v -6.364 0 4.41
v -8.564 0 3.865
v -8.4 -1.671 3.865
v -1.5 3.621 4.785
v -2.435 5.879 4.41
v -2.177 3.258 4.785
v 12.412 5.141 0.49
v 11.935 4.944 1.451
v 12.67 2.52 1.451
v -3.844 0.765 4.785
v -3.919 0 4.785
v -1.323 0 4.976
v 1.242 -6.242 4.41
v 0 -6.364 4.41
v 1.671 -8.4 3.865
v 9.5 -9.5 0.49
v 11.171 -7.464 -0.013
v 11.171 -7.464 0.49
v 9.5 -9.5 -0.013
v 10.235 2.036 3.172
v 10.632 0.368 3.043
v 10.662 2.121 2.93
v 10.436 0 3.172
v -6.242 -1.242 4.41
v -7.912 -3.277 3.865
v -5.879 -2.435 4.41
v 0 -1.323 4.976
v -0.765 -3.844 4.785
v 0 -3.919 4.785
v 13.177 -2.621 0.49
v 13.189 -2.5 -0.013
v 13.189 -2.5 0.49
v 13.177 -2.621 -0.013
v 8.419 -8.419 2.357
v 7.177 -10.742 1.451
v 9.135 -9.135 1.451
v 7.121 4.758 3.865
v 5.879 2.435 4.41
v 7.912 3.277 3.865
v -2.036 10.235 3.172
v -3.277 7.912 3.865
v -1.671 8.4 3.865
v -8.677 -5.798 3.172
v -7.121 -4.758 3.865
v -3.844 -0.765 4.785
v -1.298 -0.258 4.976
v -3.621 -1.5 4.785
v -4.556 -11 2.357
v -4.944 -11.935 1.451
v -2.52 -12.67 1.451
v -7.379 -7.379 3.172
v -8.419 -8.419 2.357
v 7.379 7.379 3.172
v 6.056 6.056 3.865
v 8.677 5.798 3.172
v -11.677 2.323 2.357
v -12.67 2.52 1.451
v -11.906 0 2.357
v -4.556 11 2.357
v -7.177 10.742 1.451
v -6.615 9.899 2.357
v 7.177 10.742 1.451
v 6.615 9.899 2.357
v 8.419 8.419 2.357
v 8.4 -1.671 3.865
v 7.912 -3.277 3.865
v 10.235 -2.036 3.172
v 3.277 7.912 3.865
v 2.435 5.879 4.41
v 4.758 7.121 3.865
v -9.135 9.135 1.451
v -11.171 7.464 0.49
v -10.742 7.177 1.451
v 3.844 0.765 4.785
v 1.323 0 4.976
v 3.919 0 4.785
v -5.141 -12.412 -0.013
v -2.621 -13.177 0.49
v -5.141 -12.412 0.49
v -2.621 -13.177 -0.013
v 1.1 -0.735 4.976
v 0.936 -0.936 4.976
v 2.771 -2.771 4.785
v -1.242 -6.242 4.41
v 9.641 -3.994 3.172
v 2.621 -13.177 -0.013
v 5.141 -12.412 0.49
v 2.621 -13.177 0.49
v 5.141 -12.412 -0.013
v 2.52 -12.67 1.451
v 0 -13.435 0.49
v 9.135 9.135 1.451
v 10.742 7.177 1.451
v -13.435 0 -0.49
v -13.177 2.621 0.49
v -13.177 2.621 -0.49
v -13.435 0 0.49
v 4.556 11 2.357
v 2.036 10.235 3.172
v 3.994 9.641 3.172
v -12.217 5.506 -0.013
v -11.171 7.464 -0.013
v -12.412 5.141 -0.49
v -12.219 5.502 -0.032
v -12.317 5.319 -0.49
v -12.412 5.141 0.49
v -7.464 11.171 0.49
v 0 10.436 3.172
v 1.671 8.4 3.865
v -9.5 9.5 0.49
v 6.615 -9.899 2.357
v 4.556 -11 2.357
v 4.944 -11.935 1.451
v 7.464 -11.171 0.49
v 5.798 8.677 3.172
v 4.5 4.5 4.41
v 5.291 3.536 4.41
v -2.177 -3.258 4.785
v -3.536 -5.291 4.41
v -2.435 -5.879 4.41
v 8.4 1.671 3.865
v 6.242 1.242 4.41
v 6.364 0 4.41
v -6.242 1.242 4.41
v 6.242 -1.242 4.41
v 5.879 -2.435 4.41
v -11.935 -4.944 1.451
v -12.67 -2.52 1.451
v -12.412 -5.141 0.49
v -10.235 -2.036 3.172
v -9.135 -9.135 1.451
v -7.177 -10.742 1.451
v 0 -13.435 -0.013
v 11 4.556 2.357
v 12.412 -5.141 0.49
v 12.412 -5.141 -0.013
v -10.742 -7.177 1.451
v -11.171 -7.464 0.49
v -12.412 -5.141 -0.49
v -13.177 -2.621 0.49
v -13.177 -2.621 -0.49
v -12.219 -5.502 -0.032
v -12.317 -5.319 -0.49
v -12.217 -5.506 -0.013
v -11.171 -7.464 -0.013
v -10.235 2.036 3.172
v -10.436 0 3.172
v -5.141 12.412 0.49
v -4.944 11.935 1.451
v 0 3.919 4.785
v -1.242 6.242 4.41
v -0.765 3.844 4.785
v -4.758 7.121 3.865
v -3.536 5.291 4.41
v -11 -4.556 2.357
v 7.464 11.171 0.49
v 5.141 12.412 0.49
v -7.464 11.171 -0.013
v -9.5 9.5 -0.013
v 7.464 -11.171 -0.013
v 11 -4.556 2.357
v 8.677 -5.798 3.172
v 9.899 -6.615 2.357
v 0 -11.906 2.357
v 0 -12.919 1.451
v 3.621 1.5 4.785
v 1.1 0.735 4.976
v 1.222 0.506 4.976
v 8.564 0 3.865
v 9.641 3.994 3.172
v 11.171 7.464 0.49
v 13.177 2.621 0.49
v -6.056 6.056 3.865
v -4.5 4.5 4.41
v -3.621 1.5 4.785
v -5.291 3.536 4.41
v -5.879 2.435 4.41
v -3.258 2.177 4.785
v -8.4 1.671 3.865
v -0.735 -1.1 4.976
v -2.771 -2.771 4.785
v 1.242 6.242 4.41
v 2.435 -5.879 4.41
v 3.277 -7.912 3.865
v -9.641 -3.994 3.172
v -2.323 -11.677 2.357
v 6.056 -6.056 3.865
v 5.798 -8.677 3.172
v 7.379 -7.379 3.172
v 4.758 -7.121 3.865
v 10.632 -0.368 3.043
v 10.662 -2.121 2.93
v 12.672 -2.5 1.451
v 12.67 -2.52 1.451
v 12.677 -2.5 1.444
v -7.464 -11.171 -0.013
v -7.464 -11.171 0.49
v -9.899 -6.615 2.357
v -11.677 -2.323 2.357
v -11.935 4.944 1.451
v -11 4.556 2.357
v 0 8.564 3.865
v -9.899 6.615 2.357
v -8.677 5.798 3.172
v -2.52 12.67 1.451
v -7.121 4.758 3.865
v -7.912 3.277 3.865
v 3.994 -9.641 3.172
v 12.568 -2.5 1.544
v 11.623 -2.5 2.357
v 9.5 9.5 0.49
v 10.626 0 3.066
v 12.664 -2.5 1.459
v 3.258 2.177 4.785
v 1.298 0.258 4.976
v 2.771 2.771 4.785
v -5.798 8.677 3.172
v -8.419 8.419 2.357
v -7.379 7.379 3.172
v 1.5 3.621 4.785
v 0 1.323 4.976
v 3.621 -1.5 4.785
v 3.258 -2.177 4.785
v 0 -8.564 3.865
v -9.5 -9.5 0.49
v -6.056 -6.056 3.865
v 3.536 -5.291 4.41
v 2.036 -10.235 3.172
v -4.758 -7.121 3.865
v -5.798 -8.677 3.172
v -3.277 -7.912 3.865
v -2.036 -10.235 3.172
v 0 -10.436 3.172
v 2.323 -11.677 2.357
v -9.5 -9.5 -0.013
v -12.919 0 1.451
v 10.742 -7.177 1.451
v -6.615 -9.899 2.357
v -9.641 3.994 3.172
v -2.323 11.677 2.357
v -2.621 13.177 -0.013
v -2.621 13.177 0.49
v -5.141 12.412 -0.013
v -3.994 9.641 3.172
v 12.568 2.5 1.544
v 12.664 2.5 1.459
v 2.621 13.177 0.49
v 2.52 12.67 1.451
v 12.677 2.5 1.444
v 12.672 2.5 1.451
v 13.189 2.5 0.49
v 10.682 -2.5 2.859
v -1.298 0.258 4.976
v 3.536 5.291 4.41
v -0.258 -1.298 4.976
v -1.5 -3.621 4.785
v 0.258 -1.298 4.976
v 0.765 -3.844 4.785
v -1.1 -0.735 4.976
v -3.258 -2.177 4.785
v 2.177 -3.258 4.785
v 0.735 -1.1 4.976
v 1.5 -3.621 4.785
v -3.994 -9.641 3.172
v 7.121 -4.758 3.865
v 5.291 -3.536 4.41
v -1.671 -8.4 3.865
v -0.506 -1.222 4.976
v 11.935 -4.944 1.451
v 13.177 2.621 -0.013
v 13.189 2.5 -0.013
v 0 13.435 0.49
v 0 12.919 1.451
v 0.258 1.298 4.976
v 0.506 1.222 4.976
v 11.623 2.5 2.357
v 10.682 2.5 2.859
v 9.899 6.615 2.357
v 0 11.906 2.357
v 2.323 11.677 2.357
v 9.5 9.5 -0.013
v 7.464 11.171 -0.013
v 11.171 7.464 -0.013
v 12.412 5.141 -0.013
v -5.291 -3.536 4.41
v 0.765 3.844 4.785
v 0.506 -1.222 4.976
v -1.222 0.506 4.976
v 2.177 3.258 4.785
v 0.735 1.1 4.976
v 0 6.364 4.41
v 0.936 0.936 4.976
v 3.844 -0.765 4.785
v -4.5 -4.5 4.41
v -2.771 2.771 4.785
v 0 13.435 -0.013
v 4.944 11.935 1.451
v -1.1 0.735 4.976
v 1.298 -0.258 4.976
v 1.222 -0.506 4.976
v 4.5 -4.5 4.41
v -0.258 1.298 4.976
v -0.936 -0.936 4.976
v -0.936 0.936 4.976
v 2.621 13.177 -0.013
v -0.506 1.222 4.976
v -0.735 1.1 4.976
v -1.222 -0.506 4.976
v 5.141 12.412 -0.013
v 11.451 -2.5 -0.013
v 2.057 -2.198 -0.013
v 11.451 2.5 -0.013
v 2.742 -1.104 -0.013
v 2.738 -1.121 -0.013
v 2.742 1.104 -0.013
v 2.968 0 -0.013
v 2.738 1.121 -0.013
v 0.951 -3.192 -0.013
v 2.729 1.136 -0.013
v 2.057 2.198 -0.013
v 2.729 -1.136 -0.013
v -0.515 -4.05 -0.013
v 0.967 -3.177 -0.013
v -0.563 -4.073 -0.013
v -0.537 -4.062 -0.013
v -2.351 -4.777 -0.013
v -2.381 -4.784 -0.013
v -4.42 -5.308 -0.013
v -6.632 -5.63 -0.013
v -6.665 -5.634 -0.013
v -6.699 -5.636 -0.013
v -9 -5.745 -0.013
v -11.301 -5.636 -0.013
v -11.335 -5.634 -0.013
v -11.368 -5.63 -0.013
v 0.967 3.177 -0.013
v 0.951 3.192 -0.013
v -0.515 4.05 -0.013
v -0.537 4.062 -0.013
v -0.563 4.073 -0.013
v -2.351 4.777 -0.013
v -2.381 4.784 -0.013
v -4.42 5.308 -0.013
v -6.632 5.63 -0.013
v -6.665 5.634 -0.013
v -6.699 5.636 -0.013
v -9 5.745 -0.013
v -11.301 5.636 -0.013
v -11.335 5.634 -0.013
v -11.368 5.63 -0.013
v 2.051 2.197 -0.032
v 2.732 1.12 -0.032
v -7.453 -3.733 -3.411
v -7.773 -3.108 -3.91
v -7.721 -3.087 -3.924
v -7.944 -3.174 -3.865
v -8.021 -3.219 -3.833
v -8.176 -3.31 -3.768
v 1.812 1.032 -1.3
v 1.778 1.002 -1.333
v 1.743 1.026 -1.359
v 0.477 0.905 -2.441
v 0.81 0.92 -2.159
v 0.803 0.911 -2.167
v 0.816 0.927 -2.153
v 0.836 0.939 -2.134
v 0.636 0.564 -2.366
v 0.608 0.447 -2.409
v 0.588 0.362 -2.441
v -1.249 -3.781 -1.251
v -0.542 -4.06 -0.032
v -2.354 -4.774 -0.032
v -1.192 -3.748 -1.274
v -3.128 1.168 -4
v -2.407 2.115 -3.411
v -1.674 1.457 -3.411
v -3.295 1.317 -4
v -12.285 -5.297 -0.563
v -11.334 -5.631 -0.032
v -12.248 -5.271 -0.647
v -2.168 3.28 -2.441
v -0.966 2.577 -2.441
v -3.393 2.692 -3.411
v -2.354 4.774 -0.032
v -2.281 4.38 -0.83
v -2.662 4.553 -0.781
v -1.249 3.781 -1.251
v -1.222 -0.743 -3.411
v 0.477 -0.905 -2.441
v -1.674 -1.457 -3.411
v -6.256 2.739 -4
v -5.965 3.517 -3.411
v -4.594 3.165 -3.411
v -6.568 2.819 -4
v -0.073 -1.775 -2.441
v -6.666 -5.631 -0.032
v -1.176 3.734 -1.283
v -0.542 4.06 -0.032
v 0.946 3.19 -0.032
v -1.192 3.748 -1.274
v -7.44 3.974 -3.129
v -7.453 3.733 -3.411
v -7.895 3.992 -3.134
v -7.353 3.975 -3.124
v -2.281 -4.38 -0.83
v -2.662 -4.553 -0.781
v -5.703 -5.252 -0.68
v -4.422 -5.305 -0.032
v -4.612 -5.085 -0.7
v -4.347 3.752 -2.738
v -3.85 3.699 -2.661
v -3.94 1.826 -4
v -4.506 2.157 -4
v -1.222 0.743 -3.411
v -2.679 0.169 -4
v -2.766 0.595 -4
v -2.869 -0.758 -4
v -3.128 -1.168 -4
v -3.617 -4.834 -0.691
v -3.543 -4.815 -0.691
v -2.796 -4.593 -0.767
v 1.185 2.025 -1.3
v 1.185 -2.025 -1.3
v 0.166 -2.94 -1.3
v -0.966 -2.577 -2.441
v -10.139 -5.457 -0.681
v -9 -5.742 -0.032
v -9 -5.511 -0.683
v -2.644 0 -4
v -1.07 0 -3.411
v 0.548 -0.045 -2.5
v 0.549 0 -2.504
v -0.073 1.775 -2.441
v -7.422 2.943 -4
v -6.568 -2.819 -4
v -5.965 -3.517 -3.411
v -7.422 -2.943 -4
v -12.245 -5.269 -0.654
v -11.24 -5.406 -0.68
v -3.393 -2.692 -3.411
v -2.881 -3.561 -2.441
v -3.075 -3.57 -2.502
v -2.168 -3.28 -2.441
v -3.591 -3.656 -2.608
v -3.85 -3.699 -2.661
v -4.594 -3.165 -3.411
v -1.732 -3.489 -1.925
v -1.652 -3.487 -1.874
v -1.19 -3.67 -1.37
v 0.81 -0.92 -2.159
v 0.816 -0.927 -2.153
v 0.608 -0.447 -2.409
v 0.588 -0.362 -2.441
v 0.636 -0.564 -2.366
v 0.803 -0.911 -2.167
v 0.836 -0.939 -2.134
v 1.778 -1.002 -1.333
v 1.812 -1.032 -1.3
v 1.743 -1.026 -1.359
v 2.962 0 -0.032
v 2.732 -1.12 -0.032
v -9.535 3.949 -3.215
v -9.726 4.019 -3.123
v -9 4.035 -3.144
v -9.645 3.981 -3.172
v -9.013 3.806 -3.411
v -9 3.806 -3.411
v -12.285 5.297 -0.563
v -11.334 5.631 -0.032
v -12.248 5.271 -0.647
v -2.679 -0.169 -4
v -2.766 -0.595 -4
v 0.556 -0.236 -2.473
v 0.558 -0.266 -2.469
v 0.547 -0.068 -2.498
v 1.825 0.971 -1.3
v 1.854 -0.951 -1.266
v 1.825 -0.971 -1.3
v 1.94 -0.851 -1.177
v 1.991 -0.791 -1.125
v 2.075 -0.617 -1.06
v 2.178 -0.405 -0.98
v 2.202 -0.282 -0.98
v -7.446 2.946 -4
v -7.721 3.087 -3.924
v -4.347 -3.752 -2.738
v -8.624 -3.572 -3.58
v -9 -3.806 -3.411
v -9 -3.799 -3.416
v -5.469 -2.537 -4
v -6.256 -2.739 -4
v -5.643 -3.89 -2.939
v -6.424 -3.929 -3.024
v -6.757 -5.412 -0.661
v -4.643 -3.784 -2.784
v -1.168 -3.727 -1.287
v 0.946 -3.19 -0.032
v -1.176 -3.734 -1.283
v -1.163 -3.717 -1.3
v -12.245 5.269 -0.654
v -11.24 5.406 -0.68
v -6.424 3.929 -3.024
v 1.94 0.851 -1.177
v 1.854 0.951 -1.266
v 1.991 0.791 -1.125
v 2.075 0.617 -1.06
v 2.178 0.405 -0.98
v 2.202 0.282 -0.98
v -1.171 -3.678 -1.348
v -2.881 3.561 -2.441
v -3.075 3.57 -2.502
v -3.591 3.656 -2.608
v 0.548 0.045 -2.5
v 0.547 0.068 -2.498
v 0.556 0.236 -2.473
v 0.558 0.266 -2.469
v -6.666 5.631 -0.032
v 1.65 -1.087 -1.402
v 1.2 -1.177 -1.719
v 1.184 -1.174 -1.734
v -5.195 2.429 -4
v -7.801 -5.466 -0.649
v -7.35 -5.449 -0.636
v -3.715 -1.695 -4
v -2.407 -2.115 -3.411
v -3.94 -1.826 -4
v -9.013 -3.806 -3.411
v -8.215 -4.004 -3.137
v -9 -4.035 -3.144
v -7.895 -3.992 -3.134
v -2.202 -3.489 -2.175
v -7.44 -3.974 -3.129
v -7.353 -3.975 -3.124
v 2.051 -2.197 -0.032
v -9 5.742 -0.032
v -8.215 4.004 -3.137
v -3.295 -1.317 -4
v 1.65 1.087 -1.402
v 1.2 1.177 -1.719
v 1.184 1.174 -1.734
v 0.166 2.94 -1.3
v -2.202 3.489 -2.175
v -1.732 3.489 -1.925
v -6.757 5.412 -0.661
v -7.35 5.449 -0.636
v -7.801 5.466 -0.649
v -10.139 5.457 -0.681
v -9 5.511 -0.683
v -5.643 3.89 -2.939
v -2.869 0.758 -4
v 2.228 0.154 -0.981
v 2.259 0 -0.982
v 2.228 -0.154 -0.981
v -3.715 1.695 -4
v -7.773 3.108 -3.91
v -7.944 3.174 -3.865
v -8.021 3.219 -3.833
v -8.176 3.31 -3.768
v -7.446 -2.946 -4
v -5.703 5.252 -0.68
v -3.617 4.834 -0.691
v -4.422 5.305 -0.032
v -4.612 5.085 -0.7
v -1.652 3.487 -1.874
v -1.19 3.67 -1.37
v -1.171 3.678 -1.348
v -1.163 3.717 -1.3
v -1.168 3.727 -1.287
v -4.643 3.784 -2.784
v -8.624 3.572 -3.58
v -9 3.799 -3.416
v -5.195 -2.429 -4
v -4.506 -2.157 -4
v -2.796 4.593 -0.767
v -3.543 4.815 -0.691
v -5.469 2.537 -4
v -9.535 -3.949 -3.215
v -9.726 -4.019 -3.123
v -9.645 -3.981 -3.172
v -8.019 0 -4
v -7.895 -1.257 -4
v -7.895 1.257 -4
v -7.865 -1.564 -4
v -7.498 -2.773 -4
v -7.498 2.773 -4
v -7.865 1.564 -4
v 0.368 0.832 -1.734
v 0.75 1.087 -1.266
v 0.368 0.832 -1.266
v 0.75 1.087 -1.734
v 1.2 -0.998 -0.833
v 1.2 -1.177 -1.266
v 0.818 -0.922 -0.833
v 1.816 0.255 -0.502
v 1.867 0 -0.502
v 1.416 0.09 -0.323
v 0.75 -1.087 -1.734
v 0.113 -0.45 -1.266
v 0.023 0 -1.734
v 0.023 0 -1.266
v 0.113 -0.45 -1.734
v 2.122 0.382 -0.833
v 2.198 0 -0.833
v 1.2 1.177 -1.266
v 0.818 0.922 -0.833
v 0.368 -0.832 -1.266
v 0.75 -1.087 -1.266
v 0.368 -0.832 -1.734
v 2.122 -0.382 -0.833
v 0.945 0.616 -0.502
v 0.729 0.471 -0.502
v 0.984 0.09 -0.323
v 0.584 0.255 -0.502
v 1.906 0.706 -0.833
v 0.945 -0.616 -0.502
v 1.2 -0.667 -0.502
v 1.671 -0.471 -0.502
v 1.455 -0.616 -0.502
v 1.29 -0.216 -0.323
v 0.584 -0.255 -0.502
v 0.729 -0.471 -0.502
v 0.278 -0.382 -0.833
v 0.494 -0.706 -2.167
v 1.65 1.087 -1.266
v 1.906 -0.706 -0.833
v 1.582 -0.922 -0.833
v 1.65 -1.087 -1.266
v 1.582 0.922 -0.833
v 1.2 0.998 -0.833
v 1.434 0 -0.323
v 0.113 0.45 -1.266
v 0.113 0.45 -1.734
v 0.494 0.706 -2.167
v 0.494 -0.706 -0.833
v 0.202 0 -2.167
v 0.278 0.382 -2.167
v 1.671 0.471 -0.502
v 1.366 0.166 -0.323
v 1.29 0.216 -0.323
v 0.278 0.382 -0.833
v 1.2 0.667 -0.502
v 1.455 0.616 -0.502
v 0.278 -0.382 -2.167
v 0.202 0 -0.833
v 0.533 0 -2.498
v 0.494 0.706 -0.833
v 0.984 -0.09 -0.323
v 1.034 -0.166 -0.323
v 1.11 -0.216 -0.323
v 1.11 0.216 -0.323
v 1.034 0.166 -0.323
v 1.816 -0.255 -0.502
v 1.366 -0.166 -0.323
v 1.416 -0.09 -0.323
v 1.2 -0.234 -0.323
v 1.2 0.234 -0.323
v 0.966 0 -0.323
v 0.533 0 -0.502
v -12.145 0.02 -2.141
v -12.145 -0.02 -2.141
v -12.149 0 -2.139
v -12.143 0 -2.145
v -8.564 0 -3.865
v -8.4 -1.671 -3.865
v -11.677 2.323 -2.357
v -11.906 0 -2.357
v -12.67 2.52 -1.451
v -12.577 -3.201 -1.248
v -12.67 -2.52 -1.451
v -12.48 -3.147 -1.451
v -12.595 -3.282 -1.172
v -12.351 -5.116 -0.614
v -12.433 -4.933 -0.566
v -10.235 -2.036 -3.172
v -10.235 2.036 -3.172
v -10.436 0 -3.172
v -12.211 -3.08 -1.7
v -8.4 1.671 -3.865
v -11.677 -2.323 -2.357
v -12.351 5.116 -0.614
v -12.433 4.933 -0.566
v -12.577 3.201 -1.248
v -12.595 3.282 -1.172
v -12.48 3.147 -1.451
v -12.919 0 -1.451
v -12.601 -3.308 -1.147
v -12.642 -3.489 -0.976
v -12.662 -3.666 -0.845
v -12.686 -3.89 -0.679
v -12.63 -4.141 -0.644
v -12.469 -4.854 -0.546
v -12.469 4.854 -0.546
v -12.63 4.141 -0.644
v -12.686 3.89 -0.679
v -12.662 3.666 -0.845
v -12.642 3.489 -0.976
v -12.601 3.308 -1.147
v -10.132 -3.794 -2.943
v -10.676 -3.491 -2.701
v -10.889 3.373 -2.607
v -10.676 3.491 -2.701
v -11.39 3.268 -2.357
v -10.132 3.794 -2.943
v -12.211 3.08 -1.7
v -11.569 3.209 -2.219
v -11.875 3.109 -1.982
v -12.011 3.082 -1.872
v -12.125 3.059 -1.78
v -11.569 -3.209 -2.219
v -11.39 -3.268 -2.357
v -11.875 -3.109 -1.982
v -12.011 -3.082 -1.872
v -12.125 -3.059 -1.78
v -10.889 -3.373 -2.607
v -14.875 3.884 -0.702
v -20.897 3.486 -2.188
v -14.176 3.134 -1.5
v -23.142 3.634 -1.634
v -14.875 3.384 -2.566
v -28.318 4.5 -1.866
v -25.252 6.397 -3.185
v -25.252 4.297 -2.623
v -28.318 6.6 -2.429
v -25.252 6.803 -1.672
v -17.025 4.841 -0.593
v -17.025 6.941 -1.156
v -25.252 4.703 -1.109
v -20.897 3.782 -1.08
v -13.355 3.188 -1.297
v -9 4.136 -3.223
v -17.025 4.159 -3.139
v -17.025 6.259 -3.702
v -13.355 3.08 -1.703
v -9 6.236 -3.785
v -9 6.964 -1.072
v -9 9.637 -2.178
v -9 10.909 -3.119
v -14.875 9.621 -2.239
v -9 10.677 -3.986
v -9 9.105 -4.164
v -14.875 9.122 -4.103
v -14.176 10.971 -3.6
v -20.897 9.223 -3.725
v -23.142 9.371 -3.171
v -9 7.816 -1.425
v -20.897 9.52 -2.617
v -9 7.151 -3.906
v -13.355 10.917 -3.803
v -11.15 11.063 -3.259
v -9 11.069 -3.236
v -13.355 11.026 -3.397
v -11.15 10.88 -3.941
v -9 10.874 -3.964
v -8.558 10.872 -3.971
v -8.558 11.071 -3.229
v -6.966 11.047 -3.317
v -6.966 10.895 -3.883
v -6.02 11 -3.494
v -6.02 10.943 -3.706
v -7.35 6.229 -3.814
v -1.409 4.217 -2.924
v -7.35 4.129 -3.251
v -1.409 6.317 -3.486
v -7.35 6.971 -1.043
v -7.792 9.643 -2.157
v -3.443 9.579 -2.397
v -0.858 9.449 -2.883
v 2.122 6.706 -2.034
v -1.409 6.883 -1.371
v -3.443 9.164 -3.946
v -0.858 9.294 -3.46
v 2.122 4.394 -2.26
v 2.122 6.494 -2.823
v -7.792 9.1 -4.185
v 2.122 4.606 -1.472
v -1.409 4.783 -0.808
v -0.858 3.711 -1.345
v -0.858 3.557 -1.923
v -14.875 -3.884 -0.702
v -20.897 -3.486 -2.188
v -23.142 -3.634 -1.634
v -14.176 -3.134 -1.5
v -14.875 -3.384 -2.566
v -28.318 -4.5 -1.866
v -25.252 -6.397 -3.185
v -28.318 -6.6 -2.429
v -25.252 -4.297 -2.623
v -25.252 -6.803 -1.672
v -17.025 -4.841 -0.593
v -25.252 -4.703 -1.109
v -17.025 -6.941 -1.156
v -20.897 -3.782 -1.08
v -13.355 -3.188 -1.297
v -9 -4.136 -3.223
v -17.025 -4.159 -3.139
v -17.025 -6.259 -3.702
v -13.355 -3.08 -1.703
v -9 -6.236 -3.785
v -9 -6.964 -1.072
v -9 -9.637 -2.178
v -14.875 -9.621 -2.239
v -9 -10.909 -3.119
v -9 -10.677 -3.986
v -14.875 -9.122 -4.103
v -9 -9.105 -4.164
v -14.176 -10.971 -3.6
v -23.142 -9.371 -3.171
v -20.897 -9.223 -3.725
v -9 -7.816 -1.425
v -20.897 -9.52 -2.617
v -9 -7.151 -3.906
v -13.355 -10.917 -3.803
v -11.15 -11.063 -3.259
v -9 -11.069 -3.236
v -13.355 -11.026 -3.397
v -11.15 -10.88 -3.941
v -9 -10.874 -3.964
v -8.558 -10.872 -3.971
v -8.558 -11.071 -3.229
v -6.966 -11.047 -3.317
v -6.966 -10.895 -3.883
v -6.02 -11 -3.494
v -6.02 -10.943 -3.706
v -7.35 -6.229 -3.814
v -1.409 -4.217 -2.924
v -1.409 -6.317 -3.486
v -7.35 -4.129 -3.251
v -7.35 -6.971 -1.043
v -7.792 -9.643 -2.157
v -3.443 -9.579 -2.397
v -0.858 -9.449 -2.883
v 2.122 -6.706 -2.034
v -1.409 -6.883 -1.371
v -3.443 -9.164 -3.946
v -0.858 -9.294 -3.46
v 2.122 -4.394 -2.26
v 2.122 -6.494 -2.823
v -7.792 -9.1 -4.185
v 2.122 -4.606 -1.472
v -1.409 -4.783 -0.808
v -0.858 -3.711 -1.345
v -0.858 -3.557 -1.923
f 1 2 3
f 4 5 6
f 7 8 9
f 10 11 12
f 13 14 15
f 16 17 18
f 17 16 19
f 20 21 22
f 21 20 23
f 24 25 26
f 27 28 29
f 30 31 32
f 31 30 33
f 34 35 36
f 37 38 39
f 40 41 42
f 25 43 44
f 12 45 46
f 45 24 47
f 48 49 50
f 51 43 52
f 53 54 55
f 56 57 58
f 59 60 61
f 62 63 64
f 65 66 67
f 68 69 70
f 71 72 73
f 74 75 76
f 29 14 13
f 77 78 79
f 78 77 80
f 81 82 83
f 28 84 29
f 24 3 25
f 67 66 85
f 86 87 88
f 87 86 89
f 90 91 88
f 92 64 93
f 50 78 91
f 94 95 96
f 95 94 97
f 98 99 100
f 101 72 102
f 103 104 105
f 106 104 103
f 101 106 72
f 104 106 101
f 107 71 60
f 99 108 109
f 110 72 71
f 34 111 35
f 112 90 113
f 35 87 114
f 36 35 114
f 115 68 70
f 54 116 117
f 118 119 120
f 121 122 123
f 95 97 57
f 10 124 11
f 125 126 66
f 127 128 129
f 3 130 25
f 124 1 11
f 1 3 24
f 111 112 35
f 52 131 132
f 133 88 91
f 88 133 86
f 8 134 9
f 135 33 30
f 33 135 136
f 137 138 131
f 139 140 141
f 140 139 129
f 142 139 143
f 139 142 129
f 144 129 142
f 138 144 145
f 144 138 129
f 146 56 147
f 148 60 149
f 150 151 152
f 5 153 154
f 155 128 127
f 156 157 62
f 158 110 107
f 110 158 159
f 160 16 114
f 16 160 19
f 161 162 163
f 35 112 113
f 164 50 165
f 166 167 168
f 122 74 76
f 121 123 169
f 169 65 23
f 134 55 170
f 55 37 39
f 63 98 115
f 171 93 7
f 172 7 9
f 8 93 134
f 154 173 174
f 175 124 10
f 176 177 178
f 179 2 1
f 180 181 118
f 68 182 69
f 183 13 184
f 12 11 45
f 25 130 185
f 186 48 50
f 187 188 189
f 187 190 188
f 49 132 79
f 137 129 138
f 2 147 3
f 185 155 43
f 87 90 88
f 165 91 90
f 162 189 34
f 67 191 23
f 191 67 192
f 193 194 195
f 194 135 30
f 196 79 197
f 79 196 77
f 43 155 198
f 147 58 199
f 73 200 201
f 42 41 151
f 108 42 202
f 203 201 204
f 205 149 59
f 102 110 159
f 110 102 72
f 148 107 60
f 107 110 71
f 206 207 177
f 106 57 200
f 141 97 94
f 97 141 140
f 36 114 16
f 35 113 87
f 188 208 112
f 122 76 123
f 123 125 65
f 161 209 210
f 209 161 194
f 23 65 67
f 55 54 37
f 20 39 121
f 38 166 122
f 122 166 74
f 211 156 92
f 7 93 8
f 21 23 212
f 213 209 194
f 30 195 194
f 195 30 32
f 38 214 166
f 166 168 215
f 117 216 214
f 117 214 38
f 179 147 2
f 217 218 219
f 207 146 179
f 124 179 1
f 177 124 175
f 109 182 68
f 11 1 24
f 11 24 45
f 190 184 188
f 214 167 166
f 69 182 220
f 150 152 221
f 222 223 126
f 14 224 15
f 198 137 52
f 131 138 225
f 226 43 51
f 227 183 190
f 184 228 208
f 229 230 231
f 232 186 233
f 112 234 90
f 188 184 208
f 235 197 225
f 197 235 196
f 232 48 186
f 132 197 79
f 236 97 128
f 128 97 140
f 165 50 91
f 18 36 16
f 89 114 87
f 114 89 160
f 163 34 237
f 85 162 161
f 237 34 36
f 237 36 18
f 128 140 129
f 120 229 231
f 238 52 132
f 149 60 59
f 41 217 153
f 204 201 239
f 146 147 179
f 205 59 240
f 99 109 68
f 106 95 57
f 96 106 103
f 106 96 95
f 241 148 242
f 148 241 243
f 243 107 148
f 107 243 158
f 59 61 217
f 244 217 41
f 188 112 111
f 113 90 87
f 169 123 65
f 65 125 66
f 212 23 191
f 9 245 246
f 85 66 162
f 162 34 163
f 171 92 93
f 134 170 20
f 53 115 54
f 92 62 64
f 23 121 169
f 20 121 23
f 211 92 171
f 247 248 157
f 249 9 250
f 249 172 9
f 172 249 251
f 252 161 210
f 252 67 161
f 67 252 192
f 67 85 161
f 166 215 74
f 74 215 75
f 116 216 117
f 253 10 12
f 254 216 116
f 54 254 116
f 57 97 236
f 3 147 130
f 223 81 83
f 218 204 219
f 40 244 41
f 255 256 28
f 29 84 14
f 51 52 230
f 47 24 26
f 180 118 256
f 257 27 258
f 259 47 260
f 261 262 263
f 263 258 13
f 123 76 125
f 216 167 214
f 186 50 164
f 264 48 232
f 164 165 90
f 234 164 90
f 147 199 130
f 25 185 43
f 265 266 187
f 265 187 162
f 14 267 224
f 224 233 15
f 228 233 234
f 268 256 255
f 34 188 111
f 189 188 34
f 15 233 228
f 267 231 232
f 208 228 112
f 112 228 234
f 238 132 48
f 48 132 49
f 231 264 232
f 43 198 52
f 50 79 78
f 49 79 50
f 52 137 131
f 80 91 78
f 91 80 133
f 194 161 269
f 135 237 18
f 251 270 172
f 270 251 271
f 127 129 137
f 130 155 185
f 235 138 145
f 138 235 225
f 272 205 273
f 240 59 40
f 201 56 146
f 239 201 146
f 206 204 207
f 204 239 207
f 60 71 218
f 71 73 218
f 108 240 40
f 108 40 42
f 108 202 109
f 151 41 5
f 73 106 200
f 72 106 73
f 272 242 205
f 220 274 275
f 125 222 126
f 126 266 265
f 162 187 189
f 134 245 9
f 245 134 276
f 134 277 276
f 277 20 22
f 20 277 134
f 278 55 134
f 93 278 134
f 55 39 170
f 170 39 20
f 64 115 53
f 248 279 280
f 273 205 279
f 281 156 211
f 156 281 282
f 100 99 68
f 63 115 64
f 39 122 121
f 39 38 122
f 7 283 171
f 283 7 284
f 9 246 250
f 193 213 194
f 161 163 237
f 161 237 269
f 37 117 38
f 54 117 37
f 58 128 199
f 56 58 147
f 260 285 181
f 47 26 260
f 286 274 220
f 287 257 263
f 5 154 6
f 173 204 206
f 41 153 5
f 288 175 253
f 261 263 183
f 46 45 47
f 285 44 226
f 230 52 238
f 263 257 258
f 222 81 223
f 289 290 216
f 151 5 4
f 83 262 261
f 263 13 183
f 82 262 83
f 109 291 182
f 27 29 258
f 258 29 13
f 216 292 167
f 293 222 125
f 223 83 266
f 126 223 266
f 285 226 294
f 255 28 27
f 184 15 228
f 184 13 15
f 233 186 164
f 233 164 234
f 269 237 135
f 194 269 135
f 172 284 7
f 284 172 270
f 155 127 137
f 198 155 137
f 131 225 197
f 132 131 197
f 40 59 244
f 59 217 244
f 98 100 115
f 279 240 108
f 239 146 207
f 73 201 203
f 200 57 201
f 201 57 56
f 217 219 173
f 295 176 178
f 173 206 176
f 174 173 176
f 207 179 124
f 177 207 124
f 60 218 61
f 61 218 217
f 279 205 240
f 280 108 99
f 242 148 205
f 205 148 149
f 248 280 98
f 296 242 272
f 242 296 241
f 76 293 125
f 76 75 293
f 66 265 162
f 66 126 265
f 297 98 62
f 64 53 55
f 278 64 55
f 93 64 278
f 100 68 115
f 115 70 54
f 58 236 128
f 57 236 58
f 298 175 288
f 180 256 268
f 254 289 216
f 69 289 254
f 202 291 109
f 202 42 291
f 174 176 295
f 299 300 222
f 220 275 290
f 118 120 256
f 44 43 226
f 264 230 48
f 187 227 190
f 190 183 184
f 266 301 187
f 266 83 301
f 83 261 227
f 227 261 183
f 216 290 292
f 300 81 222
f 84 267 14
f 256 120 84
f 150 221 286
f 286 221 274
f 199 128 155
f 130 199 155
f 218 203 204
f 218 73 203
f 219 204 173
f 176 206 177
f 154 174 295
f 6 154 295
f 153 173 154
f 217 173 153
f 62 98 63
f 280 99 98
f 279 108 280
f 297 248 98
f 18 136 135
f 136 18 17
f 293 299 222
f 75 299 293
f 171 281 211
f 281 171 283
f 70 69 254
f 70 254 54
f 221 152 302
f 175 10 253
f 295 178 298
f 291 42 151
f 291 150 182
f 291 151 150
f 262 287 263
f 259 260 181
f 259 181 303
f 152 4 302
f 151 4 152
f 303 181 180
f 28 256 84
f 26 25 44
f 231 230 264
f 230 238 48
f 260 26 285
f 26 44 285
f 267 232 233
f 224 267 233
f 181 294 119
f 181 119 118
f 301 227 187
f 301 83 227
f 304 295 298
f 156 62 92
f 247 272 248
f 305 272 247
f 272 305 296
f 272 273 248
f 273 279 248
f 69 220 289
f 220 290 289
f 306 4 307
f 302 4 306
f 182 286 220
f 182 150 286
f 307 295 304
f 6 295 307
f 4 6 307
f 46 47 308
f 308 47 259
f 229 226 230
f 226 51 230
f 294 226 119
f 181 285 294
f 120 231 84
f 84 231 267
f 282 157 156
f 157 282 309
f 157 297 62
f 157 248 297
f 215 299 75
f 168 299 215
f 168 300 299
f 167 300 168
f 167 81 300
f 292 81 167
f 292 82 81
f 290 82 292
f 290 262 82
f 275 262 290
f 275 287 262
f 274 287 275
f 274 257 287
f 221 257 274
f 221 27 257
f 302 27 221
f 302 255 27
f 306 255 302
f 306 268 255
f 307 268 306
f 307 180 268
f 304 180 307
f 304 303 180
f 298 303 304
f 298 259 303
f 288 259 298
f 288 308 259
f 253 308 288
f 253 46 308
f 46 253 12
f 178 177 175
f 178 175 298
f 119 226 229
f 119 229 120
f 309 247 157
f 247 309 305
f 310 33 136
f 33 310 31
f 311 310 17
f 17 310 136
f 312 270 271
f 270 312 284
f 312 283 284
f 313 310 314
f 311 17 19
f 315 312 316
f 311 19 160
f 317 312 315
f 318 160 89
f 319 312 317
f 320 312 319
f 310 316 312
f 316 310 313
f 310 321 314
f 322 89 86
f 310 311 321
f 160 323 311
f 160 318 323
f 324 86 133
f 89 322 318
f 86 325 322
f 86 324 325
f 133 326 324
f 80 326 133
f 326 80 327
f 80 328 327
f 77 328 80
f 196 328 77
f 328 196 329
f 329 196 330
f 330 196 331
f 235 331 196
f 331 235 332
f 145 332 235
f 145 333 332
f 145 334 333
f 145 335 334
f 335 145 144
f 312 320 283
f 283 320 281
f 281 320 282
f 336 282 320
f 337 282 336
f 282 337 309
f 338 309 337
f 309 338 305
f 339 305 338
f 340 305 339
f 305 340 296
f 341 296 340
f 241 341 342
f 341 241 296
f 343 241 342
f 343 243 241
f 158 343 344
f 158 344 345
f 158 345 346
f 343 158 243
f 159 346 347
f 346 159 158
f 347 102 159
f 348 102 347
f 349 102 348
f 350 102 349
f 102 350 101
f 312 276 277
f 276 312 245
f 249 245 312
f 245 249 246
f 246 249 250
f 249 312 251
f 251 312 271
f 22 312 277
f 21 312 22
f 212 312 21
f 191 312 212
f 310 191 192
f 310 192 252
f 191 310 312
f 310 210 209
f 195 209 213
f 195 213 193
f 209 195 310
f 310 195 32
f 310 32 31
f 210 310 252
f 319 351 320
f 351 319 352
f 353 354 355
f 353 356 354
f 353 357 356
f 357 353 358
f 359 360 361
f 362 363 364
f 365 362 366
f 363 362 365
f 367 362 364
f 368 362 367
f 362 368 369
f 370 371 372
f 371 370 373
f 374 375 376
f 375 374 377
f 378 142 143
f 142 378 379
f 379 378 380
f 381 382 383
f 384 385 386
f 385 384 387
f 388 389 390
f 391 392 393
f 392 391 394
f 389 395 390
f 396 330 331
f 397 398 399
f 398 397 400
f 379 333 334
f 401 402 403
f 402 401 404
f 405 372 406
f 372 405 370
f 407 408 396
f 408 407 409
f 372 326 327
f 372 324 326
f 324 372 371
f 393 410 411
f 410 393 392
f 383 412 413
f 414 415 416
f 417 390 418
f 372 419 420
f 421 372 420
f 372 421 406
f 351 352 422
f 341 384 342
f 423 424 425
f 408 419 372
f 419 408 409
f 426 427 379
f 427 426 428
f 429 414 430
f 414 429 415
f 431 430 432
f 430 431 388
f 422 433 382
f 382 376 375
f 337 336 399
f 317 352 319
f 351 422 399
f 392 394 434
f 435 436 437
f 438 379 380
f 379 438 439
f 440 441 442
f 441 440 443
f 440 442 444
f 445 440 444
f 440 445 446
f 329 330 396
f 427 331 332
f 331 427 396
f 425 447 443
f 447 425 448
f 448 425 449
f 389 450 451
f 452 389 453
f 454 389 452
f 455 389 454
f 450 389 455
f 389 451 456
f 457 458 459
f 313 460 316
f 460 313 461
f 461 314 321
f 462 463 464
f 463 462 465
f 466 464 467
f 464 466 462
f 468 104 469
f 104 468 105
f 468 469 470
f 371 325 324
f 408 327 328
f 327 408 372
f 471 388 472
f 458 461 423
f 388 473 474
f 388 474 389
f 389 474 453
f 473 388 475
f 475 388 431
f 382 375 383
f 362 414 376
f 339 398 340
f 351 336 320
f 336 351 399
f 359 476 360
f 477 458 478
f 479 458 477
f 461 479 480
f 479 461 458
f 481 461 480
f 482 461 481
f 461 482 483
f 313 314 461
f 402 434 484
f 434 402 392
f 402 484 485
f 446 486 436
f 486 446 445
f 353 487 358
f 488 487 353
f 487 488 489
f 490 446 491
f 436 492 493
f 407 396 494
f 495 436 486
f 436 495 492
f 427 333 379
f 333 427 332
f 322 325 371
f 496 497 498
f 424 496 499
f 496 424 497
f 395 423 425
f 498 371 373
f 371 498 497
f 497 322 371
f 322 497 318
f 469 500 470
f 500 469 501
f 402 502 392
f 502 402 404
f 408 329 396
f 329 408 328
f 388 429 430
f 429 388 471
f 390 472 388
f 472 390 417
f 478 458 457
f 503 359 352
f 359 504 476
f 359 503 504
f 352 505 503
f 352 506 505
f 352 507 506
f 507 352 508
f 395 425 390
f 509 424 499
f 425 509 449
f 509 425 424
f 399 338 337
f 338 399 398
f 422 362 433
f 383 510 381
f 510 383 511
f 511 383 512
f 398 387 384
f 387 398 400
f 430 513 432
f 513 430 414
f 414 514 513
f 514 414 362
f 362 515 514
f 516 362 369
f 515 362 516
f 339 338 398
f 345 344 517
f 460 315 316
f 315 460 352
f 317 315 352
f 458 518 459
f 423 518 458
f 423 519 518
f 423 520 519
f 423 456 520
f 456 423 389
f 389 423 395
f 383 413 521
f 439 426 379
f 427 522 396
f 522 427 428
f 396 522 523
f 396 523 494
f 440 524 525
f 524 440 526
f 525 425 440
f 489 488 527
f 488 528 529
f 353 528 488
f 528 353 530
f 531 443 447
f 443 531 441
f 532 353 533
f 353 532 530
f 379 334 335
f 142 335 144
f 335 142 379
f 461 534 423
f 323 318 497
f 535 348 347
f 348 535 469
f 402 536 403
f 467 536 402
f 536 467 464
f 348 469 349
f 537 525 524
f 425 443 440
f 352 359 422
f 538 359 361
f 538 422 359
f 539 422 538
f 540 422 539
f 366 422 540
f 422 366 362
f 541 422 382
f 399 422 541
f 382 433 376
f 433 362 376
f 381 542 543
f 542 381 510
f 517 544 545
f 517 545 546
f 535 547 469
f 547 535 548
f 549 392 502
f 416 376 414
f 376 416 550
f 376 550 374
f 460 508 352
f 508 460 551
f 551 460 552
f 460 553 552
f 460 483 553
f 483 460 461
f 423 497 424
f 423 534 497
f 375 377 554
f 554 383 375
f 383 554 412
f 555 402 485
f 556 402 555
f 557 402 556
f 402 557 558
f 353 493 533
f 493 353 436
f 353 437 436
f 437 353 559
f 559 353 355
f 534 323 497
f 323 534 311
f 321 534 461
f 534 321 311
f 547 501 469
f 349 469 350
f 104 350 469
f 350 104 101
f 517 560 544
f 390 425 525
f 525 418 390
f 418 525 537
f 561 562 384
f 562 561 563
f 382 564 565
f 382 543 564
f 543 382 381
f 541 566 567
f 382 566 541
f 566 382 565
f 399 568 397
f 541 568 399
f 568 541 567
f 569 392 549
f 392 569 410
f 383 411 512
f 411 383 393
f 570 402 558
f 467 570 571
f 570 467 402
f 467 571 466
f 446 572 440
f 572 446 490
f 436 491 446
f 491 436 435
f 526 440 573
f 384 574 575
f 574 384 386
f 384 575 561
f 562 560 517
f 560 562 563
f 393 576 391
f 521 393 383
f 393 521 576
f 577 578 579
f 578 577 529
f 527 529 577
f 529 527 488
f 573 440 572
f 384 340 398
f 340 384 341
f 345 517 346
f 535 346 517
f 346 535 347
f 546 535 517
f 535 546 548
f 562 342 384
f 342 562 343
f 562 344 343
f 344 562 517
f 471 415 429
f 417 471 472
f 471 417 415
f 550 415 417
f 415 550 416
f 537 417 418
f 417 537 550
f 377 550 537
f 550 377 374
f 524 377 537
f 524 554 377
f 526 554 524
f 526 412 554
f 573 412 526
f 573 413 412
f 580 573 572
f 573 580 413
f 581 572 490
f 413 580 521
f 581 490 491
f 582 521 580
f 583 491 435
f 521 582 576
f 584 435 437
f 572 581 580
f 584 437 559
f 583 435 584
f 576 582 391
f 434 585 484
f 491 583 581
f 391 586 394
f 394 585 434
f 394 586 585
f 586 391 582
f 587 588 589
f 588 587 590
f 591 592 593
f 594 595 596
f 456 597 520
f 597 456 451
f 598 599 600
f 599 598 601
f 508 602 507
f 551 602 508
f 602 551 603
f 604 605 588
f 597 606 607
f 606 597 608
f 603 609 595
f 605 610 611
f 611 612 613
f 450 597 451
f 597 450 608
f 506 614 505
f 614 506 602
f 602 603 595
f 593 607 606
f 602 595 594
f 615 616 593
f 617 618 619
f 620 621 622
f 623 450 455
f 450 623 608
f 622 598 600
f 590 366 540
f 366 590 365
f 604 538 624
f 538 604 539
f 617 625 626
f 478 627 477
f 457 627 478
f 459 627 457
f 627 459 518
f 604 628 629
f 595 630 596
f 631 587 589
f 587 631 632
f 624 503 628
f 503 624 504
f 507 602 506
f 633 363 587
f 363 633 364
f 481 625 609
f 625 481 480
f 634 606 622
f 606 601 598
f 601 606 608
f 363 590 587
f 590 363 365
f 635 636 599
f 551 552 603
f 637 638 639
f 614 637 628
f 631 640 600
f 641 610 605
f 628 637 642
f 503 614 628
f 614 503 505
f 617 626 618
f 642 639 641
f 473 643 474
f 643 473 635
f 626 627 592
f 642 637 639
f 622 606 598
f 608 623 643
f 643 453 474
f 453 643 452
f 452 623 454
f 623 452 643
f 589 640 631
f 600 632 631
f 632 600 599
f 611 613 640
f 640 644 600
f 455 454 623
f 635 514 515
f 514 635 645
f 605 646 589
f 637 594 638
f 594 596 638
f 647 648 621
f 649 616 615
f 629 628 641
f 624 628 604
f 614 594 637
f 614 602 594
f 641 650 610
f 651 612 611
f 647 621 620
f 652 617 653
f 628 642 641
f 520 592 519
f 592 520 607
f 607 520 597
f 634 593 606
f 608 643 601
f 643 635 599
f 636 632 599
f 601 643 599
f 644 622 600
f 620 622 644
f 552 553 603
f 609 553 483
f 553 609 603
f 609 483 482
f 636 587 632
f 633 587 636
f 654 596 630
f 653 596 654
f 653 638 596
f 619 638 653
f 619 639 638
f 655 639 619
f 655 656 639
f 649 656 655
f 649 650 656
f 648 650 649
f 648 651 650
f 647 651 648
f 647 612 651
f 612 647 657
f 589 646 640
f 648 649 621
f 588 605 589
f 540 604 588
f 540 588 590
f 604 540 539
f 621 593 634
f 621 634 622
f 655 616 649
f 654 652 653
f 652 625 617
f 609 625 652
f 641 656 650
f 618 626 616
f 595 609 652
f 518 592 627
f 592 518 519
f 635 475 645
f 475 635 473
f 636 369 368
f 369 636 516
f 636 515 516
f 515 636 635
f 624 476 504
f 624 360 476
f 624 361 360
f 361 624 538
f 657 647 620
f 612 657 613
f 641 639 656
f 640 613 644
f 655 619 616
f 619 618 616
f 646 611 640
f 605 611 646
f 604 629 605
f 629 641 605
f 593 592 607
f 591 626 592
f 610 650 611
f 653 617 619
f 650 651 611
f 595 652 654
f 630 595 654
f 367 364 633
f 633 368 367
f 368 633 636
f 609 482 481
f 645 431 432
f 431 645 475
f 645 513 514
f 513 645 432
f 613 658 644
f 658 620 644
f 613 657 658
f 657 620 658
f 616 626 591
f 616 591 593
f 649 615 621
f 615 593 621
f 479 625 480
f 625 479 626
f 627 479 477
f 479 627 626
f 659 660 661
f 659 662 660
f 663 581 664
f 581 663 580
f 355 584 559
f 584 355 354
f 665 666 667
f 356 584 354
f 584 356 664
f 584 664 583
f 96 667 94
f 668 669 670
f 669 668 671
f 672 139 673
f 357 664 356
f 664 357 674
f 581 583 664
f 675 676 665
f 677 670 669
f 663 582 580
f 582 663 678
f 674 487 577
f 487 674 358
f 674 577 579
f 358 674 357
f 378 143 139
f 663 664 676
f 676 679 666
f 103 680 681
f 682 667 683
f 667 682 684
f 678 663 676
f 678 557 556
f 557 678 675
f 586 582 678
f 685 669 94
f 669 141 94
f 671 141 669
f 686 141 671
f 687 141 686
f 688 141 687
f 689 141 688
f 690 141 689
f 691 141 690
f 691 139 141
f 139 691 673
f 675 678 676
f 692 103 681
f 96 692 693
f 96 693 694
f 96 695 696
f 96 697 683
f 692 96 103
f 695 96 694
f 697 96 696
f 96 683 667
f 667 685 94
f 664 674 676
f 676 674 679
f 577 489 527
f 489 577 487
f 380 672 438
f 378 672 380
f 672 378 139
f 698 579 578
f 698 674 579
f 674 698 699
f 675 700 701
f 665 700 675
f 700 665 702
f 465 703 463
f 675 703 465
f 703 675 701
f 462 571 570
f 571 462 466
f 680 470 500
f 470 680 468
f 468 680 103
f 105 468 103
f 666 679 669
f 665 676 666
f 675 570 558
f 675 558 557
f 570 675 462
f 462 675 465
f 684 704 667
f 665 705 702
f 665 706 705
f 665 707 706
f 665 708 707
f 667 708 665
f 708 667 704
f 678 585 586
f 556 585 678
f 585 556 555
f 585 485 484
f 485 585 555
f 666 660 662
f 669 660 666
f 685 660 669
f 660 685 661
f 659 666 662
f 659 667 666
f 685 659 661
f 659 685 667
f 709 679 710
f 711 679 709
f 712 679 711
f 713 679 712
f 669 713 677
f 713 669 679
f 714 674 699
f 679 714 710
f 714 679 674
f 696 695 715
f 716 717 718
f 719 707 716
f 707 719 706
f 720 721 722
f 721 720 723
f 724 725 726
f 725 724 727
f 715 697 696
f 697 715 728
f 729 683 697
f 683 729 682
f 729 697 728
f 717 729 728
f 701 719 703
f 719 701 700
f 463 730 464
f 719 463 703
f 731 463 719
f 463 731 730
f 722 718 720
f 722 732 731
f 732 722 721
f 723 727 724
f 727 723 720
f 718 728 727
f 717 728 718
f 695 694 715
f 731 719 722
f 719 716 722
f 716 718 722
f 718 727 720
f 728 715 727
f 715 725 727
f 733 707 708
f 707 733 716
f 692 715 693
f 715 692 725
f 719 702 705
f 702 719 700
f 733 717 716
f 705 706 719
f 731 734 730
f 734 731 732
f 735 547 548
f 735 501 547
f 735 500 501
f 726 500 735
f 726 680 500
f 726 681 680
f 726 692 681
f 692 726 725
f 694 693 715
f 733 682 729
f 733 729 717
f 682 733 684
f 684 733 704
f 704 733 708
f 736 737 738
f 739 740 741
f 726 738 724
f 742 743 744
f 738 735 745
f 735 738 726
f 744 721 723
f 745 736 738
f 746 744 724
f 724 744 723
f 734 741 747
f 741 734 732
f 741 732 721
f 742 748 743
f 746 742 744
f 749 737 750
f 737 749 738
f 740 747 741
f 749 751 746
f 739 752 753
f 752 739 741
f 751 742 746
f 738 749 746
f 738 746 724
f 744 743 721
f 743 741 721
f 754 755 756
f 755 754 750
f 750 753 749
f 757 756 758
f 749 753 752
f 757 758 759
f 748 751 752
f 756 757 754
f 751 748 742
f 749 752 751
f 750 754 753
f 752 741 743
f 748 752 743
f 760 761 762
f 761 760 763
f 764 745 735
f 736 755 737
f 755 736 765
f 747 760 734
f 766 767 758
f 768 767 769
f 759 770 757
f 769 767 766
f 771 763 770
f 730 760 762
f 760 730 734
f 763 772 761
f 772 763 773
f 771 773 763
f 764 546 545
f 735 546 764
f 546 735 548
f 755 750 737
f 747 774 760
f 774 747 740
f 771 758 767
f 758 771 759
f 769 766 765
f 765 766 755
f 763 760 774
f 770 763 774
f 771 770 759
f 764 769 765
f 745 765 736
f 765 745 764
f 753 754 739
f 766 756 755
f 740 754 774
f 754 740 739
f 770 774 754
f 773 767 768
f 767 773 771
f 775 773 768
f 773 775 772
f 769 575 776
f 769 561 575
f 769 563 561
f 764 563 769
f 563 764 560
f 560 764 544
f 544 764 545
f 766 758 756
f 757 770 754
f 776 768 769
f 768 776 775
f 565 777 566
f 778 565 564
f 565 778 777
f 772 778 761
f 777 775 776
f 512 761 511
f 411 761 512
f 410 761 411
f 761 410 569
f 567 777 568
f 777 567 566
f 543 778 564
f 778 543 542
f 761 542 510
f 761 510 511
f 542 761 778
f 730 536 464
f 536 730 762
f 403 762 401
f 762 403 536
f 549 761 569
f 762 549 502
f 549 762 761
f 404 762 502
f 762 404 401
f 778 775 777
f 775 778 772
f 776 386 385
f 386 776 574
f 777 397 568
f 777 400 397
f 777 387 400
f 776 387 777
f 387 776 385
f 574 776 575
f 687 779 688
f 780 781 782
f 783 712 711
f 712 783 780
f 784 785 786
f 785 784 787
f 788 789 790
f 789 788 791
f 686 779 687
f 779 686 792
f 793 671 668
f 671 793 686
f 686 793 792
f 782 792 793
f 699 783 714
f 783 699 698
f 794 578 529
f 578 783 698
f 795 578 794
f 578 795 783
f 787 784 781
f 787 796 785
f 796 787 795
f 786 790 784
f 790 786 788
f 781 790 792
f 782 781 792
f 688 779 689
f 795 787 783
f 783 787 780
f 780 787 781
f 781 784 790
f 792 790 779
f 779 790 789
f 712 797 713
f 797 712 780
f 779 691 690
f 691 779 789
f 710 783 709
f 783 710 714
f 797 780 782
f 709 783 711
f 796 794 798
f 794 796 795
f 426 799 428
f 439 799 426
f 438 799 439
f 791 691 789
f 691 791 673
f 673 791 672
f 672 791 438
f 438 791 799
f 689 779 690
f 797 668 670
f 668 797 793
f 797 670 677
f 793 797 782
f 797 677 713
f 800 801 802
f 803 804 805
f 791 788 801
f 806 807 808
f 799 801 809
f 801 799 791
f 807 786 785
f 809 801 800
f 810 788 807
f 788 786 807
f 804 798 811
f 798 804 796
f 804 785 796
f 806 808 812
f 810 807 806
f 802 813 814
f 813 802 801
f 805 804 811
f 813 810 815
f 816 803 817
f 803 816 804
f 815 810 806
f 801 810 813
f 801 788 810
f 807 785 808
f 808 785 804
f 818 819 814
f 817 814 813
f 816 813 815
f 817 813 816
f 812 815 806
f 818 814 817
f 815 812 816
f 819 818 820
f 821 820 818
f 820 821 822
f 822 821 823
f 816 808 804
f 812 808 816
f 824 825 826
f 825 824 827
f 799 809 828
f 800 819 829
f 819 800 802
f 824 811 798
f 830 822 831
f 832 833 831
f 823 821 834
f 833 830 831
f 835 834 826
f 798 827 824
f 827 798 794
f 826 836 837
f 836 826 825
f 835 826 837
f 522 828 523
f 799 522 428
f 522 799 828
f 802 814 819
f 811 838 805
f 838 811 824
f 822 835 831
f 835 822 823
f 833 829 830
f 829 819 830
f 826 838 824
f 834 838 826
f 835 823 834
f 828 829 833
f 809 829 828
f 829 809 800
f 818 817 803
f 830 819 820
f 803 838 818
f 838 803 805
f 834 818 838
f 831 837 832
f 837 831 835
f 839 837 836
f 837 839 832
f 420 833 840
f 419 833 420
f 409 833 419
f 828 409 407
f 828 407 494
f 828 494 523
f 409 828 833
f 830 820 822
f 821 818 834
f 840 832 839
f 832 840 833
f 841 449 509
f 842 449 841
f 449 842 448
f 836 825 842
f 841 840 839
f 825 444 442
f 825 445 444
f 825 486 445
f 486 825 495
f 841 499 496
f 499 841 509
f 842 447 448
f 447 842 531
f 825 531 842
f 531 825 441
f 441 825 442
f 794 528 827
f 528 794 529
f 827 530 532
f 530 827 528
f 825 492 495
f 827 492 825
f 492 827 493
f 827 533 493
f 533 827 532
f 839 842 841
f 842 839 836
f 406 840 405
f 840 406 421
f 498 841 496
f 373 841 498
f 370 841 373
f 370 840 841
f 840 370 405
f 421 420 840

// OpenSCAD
// file: yacht-common.scad
use <../lib/util.scad>;

module dip_saucer() {
    difference() {
        util_saucer(27,27,5);
        //dip_body();
        translate([13.5,0,2]) 
            rotate([0,-15,0])
            cube(5, center=true);
    }
    
}

module dip_body() {
    difference() {
        translate([-9,0,2])
            mirror([0,0,1])
                util_saucer(25,12,7);
        
        union() {
            translate([-9,0,-13])
                cube(18, center=true);
            
            translate([1.2,0,-1.5])
                sphere(1.2, $fn=16);
            
            translate([-21,0,-4])
                scale([2.5,1,1])
                rotate([90,0,0])
                    cylinder(12,4,4, center=true);
        }
    }
}

module dip_body2() {
    intersection() {
        dip_body();
        util_mirrored([0,0,1]) dip_saucer();
    }
}

module dip_nacelle_assembly() {
    translate([-19,0,0.5])
        util_nacelle_bar(24,5,3,.5);
    
    util_mirrored([0,1,0])
        translate([-15,11,4])
            util_nacelle(18,5,3,curved=true);
}
// file: ../lib/util.scad
fn1 = 32;
fn2 = 16;

module util_half_sphere(radius, fn=fn1) {
    difference() {
        sphere(radius, $fn=fn);
        translate([0,0,-(radius+radius/19)])
            cube(2*radius+radius/10, center=true);
    }
}

function gcd(a,b) = a == b ? a : a > b ? gcd(a-b, b) : gcd(a, b-a);

module util_saucer(length, width, height, fn=fn1) {
    rad = gcd(length,gcd(width,height));
    //rad = 10;
    scale([length/(2*rad), width/(2*rad), height/rad])
        util_half_sphere(rad, fn);
}

module util_half_cylinder(length, radius, inner_fn=fn2, outer_fn=fn1) {
    maxval = max(length, 2*radius);
    intersection() {
        difference() {
            rotate([0,90,0])
                translate([0,0,-(length/2 + length/20)])
                    cylinder(length+length/10, radius, radius, $fn=inner_fn);
            
            translate([0,0,(maxval/2 + maxval/19)])
                cube(maxval+maxval/10, center=true);
        }
        
        translate([0,0,-(radius+radius/20)])
            cylinder(radius + radius/10, length/2, length/2, $fn=outer_fn);
    }
}

module util_body(length, width, height, upper_height, fn=fn1) {
    rad = gcd(length, gcd(width, upper_height));
    
    scale(.995) scale([length/(2*rad), width/(2*rad), 1])
        util_half_cylinder(2*rad, height, outer_fn=fn);
}

module util_graded_cylinder(height, radius_start, radius_end, grades=1, fn=fn1) {
    height_grade = height / grades;
    radius_grade = (radius_start - radius_end) / (grades * grades);
    for (i = [0 : 1 : grades]) {
        translate([0,0,i*height_grade])
            cylinder(height_grade, 
                     radius_start - i*radius_grade * i,
                     radius_start - (i+1) * radius_grade * (i+1),
                     $fn = fn);
    }
}

module util_nacelle(length, width, height, curved=false, up=true, front_bulge=false) {
    rad = min(width, height/2);
    grads = curved ? 6 : 1;
    scale_factor = front_bulge ? 1.1 : 1;
    direction = up ? -1 : 1;
    difference() {
        scale([1, width/ (2*rad), height/rad])
            difference() {
                union() {
                    rotate([0,-90,0])
                        rotate(30)
                            util_graded_cylinder(length-rad, rad, rad/2, grads, 6);
                    scale(scale_factor) 
                        rotate([0,90,0]) rotate(90) sphere(rad, $fn=6);
                }
                
                translate([-length/2, 0, direction * (height/2 + height/19)])
                    cube([length+length, width+width, height+height/10], center=true);
            }
        
        translate([-length-(curved?length/3:0), 0, -length/3])
            rotate([0,-45,0])
                cube(length, center=true);
    }
}

module util_mirrored(v) {
    children();
    mirror(v) children();
}

module util_ring(outer, inner, height) {
    difference() {
        translate([0,0,-height/2])
            cylinder(height, outer, outer);
        translate([0,0,-(height/2 + height/19)])
            cylinder(height+height/10, inner, inner);
    }
}

module util_star(radius, thick, num, half=false) {
    angle = 360/num;
    offset = half? angle/2 : 0;
    for (i = [0: 1: num]) {
        rotate(i* angle + offset)
            translate([radius/2,0,0])
                cube([radius, thick, thick], center=true);
    }
}

module util_ring_star(radius, thick, num, inner, half=false) {
    outer=inner+thick;
    avg = (inner + outer)/2;
    union() {
        difference() {
            util_star(radius, thick, num, half);
            cylinder(2*thick, outer, outer, $fn=num, center=true);
        }
        util_ring(outer, inner, thick);
    }
}

module util_hangar_disk(height, lower, upper, num, fn=fn1) {
    difference() {
            cylinder(height, lower, upper, $fn=fn, center=true);
        difference() {
            scale([1,1,22])
                util_star(1.1*upper, height/20, num, half=true);
            scale(.95)
                cylinder(height, lower, upper, $fn=fn, center=true);
        }
    }
}

module util_hangar_form(length, width, height, num, inner=0) {
    l = 0.6* max(length, width);
    h = 2.5* height;
    thick = min(height/20,1);
    inner = inner == 0 ? l/3 : inner;
    difference() {
        children();
        scale([1,1,h/thick]) 
            util_ring_star(l, thick, num, inner, half=true);
    }
    scale(.95) children();
}

module util_nacelle_bar(span, height, width, thickness) {
    rad = (span*span/(8*height) + height/2);
    outer = rad + thickness/2;
    inner = rad - thickness/2;
    difference(){
        translate([0,0,outer])
            rotate([0,90,0])
                util_ring(outer, inner, width);
    
        translate([0,0,1.1*outer+height])
            cube(2.2*outer, center=true);
    }
}

module util_q_sphere(rad, quadrant, faces) {
    x_sign = quadrant == 1 ? 1 :
             quadrant == 2 ? -1 :
             quadrant == 3 ? -1 :
             quadrant == 4 ? 1 : 0;
    z_sign = quadrant == 1 ? 1 :
             quadrant == 2 ? 1 :
             quadrant == 3 ? -1 :
             quadrant == 4 ? -1 : 0;
    
    difference() {
        sphere(rad, $fn=faces);

        translate([x_sign*(-1.1*rad - .01),0,0])
        cube(2.2*rad, center=true);

        translate([0,0,z_sign*(-1.1*rad - .01)])
        cube(2.2*rad, center=true);
    }
}

module util_ovoid(front_rad, back_rad, width, upper_rad, lower_rad, faces=32) {
    half_width = width/2;
    largest=max(front_rad, back_rad, half_width, upper_rad, lower_rad);
    smallest=min(front_rad, back_rad, half_width, upper_rad, lower_rad);
    
    union() {
        scale([front_rad/smallest, half_width/smallest, upper_rad/smallest])
        util_q_sphere(smallest, 1, faces);
        
        scale([front_rad/smallest, half_width/smallest, lower_rad/smallest])
        util_q_sphere(smallest, 4, faces);
        
        scale([back_rad/smallest, half_width/smallest, lower_rad/smallest])
        util_q_sphere(smallest, 3, faces);
        
        scale([back_rad/smallest, half_width/smallest, upper_rad/smallest])
        util_q_sphere(smallest, 2, faces);
    }
}
// main file
use <../lib/util.scad>;
use <yacht-common.scad>;

module yacht_fighter() {
    dip_saucer();

    dip_body2();
    
    util_mirrored([0,1,0])
    translate([-9,5,-2])
    rotate([75,0,0])
    mirror([1,0,0])
    util_ovoid(20,12,3,2,6.4,faces=11);


}

yacht_fighter();
